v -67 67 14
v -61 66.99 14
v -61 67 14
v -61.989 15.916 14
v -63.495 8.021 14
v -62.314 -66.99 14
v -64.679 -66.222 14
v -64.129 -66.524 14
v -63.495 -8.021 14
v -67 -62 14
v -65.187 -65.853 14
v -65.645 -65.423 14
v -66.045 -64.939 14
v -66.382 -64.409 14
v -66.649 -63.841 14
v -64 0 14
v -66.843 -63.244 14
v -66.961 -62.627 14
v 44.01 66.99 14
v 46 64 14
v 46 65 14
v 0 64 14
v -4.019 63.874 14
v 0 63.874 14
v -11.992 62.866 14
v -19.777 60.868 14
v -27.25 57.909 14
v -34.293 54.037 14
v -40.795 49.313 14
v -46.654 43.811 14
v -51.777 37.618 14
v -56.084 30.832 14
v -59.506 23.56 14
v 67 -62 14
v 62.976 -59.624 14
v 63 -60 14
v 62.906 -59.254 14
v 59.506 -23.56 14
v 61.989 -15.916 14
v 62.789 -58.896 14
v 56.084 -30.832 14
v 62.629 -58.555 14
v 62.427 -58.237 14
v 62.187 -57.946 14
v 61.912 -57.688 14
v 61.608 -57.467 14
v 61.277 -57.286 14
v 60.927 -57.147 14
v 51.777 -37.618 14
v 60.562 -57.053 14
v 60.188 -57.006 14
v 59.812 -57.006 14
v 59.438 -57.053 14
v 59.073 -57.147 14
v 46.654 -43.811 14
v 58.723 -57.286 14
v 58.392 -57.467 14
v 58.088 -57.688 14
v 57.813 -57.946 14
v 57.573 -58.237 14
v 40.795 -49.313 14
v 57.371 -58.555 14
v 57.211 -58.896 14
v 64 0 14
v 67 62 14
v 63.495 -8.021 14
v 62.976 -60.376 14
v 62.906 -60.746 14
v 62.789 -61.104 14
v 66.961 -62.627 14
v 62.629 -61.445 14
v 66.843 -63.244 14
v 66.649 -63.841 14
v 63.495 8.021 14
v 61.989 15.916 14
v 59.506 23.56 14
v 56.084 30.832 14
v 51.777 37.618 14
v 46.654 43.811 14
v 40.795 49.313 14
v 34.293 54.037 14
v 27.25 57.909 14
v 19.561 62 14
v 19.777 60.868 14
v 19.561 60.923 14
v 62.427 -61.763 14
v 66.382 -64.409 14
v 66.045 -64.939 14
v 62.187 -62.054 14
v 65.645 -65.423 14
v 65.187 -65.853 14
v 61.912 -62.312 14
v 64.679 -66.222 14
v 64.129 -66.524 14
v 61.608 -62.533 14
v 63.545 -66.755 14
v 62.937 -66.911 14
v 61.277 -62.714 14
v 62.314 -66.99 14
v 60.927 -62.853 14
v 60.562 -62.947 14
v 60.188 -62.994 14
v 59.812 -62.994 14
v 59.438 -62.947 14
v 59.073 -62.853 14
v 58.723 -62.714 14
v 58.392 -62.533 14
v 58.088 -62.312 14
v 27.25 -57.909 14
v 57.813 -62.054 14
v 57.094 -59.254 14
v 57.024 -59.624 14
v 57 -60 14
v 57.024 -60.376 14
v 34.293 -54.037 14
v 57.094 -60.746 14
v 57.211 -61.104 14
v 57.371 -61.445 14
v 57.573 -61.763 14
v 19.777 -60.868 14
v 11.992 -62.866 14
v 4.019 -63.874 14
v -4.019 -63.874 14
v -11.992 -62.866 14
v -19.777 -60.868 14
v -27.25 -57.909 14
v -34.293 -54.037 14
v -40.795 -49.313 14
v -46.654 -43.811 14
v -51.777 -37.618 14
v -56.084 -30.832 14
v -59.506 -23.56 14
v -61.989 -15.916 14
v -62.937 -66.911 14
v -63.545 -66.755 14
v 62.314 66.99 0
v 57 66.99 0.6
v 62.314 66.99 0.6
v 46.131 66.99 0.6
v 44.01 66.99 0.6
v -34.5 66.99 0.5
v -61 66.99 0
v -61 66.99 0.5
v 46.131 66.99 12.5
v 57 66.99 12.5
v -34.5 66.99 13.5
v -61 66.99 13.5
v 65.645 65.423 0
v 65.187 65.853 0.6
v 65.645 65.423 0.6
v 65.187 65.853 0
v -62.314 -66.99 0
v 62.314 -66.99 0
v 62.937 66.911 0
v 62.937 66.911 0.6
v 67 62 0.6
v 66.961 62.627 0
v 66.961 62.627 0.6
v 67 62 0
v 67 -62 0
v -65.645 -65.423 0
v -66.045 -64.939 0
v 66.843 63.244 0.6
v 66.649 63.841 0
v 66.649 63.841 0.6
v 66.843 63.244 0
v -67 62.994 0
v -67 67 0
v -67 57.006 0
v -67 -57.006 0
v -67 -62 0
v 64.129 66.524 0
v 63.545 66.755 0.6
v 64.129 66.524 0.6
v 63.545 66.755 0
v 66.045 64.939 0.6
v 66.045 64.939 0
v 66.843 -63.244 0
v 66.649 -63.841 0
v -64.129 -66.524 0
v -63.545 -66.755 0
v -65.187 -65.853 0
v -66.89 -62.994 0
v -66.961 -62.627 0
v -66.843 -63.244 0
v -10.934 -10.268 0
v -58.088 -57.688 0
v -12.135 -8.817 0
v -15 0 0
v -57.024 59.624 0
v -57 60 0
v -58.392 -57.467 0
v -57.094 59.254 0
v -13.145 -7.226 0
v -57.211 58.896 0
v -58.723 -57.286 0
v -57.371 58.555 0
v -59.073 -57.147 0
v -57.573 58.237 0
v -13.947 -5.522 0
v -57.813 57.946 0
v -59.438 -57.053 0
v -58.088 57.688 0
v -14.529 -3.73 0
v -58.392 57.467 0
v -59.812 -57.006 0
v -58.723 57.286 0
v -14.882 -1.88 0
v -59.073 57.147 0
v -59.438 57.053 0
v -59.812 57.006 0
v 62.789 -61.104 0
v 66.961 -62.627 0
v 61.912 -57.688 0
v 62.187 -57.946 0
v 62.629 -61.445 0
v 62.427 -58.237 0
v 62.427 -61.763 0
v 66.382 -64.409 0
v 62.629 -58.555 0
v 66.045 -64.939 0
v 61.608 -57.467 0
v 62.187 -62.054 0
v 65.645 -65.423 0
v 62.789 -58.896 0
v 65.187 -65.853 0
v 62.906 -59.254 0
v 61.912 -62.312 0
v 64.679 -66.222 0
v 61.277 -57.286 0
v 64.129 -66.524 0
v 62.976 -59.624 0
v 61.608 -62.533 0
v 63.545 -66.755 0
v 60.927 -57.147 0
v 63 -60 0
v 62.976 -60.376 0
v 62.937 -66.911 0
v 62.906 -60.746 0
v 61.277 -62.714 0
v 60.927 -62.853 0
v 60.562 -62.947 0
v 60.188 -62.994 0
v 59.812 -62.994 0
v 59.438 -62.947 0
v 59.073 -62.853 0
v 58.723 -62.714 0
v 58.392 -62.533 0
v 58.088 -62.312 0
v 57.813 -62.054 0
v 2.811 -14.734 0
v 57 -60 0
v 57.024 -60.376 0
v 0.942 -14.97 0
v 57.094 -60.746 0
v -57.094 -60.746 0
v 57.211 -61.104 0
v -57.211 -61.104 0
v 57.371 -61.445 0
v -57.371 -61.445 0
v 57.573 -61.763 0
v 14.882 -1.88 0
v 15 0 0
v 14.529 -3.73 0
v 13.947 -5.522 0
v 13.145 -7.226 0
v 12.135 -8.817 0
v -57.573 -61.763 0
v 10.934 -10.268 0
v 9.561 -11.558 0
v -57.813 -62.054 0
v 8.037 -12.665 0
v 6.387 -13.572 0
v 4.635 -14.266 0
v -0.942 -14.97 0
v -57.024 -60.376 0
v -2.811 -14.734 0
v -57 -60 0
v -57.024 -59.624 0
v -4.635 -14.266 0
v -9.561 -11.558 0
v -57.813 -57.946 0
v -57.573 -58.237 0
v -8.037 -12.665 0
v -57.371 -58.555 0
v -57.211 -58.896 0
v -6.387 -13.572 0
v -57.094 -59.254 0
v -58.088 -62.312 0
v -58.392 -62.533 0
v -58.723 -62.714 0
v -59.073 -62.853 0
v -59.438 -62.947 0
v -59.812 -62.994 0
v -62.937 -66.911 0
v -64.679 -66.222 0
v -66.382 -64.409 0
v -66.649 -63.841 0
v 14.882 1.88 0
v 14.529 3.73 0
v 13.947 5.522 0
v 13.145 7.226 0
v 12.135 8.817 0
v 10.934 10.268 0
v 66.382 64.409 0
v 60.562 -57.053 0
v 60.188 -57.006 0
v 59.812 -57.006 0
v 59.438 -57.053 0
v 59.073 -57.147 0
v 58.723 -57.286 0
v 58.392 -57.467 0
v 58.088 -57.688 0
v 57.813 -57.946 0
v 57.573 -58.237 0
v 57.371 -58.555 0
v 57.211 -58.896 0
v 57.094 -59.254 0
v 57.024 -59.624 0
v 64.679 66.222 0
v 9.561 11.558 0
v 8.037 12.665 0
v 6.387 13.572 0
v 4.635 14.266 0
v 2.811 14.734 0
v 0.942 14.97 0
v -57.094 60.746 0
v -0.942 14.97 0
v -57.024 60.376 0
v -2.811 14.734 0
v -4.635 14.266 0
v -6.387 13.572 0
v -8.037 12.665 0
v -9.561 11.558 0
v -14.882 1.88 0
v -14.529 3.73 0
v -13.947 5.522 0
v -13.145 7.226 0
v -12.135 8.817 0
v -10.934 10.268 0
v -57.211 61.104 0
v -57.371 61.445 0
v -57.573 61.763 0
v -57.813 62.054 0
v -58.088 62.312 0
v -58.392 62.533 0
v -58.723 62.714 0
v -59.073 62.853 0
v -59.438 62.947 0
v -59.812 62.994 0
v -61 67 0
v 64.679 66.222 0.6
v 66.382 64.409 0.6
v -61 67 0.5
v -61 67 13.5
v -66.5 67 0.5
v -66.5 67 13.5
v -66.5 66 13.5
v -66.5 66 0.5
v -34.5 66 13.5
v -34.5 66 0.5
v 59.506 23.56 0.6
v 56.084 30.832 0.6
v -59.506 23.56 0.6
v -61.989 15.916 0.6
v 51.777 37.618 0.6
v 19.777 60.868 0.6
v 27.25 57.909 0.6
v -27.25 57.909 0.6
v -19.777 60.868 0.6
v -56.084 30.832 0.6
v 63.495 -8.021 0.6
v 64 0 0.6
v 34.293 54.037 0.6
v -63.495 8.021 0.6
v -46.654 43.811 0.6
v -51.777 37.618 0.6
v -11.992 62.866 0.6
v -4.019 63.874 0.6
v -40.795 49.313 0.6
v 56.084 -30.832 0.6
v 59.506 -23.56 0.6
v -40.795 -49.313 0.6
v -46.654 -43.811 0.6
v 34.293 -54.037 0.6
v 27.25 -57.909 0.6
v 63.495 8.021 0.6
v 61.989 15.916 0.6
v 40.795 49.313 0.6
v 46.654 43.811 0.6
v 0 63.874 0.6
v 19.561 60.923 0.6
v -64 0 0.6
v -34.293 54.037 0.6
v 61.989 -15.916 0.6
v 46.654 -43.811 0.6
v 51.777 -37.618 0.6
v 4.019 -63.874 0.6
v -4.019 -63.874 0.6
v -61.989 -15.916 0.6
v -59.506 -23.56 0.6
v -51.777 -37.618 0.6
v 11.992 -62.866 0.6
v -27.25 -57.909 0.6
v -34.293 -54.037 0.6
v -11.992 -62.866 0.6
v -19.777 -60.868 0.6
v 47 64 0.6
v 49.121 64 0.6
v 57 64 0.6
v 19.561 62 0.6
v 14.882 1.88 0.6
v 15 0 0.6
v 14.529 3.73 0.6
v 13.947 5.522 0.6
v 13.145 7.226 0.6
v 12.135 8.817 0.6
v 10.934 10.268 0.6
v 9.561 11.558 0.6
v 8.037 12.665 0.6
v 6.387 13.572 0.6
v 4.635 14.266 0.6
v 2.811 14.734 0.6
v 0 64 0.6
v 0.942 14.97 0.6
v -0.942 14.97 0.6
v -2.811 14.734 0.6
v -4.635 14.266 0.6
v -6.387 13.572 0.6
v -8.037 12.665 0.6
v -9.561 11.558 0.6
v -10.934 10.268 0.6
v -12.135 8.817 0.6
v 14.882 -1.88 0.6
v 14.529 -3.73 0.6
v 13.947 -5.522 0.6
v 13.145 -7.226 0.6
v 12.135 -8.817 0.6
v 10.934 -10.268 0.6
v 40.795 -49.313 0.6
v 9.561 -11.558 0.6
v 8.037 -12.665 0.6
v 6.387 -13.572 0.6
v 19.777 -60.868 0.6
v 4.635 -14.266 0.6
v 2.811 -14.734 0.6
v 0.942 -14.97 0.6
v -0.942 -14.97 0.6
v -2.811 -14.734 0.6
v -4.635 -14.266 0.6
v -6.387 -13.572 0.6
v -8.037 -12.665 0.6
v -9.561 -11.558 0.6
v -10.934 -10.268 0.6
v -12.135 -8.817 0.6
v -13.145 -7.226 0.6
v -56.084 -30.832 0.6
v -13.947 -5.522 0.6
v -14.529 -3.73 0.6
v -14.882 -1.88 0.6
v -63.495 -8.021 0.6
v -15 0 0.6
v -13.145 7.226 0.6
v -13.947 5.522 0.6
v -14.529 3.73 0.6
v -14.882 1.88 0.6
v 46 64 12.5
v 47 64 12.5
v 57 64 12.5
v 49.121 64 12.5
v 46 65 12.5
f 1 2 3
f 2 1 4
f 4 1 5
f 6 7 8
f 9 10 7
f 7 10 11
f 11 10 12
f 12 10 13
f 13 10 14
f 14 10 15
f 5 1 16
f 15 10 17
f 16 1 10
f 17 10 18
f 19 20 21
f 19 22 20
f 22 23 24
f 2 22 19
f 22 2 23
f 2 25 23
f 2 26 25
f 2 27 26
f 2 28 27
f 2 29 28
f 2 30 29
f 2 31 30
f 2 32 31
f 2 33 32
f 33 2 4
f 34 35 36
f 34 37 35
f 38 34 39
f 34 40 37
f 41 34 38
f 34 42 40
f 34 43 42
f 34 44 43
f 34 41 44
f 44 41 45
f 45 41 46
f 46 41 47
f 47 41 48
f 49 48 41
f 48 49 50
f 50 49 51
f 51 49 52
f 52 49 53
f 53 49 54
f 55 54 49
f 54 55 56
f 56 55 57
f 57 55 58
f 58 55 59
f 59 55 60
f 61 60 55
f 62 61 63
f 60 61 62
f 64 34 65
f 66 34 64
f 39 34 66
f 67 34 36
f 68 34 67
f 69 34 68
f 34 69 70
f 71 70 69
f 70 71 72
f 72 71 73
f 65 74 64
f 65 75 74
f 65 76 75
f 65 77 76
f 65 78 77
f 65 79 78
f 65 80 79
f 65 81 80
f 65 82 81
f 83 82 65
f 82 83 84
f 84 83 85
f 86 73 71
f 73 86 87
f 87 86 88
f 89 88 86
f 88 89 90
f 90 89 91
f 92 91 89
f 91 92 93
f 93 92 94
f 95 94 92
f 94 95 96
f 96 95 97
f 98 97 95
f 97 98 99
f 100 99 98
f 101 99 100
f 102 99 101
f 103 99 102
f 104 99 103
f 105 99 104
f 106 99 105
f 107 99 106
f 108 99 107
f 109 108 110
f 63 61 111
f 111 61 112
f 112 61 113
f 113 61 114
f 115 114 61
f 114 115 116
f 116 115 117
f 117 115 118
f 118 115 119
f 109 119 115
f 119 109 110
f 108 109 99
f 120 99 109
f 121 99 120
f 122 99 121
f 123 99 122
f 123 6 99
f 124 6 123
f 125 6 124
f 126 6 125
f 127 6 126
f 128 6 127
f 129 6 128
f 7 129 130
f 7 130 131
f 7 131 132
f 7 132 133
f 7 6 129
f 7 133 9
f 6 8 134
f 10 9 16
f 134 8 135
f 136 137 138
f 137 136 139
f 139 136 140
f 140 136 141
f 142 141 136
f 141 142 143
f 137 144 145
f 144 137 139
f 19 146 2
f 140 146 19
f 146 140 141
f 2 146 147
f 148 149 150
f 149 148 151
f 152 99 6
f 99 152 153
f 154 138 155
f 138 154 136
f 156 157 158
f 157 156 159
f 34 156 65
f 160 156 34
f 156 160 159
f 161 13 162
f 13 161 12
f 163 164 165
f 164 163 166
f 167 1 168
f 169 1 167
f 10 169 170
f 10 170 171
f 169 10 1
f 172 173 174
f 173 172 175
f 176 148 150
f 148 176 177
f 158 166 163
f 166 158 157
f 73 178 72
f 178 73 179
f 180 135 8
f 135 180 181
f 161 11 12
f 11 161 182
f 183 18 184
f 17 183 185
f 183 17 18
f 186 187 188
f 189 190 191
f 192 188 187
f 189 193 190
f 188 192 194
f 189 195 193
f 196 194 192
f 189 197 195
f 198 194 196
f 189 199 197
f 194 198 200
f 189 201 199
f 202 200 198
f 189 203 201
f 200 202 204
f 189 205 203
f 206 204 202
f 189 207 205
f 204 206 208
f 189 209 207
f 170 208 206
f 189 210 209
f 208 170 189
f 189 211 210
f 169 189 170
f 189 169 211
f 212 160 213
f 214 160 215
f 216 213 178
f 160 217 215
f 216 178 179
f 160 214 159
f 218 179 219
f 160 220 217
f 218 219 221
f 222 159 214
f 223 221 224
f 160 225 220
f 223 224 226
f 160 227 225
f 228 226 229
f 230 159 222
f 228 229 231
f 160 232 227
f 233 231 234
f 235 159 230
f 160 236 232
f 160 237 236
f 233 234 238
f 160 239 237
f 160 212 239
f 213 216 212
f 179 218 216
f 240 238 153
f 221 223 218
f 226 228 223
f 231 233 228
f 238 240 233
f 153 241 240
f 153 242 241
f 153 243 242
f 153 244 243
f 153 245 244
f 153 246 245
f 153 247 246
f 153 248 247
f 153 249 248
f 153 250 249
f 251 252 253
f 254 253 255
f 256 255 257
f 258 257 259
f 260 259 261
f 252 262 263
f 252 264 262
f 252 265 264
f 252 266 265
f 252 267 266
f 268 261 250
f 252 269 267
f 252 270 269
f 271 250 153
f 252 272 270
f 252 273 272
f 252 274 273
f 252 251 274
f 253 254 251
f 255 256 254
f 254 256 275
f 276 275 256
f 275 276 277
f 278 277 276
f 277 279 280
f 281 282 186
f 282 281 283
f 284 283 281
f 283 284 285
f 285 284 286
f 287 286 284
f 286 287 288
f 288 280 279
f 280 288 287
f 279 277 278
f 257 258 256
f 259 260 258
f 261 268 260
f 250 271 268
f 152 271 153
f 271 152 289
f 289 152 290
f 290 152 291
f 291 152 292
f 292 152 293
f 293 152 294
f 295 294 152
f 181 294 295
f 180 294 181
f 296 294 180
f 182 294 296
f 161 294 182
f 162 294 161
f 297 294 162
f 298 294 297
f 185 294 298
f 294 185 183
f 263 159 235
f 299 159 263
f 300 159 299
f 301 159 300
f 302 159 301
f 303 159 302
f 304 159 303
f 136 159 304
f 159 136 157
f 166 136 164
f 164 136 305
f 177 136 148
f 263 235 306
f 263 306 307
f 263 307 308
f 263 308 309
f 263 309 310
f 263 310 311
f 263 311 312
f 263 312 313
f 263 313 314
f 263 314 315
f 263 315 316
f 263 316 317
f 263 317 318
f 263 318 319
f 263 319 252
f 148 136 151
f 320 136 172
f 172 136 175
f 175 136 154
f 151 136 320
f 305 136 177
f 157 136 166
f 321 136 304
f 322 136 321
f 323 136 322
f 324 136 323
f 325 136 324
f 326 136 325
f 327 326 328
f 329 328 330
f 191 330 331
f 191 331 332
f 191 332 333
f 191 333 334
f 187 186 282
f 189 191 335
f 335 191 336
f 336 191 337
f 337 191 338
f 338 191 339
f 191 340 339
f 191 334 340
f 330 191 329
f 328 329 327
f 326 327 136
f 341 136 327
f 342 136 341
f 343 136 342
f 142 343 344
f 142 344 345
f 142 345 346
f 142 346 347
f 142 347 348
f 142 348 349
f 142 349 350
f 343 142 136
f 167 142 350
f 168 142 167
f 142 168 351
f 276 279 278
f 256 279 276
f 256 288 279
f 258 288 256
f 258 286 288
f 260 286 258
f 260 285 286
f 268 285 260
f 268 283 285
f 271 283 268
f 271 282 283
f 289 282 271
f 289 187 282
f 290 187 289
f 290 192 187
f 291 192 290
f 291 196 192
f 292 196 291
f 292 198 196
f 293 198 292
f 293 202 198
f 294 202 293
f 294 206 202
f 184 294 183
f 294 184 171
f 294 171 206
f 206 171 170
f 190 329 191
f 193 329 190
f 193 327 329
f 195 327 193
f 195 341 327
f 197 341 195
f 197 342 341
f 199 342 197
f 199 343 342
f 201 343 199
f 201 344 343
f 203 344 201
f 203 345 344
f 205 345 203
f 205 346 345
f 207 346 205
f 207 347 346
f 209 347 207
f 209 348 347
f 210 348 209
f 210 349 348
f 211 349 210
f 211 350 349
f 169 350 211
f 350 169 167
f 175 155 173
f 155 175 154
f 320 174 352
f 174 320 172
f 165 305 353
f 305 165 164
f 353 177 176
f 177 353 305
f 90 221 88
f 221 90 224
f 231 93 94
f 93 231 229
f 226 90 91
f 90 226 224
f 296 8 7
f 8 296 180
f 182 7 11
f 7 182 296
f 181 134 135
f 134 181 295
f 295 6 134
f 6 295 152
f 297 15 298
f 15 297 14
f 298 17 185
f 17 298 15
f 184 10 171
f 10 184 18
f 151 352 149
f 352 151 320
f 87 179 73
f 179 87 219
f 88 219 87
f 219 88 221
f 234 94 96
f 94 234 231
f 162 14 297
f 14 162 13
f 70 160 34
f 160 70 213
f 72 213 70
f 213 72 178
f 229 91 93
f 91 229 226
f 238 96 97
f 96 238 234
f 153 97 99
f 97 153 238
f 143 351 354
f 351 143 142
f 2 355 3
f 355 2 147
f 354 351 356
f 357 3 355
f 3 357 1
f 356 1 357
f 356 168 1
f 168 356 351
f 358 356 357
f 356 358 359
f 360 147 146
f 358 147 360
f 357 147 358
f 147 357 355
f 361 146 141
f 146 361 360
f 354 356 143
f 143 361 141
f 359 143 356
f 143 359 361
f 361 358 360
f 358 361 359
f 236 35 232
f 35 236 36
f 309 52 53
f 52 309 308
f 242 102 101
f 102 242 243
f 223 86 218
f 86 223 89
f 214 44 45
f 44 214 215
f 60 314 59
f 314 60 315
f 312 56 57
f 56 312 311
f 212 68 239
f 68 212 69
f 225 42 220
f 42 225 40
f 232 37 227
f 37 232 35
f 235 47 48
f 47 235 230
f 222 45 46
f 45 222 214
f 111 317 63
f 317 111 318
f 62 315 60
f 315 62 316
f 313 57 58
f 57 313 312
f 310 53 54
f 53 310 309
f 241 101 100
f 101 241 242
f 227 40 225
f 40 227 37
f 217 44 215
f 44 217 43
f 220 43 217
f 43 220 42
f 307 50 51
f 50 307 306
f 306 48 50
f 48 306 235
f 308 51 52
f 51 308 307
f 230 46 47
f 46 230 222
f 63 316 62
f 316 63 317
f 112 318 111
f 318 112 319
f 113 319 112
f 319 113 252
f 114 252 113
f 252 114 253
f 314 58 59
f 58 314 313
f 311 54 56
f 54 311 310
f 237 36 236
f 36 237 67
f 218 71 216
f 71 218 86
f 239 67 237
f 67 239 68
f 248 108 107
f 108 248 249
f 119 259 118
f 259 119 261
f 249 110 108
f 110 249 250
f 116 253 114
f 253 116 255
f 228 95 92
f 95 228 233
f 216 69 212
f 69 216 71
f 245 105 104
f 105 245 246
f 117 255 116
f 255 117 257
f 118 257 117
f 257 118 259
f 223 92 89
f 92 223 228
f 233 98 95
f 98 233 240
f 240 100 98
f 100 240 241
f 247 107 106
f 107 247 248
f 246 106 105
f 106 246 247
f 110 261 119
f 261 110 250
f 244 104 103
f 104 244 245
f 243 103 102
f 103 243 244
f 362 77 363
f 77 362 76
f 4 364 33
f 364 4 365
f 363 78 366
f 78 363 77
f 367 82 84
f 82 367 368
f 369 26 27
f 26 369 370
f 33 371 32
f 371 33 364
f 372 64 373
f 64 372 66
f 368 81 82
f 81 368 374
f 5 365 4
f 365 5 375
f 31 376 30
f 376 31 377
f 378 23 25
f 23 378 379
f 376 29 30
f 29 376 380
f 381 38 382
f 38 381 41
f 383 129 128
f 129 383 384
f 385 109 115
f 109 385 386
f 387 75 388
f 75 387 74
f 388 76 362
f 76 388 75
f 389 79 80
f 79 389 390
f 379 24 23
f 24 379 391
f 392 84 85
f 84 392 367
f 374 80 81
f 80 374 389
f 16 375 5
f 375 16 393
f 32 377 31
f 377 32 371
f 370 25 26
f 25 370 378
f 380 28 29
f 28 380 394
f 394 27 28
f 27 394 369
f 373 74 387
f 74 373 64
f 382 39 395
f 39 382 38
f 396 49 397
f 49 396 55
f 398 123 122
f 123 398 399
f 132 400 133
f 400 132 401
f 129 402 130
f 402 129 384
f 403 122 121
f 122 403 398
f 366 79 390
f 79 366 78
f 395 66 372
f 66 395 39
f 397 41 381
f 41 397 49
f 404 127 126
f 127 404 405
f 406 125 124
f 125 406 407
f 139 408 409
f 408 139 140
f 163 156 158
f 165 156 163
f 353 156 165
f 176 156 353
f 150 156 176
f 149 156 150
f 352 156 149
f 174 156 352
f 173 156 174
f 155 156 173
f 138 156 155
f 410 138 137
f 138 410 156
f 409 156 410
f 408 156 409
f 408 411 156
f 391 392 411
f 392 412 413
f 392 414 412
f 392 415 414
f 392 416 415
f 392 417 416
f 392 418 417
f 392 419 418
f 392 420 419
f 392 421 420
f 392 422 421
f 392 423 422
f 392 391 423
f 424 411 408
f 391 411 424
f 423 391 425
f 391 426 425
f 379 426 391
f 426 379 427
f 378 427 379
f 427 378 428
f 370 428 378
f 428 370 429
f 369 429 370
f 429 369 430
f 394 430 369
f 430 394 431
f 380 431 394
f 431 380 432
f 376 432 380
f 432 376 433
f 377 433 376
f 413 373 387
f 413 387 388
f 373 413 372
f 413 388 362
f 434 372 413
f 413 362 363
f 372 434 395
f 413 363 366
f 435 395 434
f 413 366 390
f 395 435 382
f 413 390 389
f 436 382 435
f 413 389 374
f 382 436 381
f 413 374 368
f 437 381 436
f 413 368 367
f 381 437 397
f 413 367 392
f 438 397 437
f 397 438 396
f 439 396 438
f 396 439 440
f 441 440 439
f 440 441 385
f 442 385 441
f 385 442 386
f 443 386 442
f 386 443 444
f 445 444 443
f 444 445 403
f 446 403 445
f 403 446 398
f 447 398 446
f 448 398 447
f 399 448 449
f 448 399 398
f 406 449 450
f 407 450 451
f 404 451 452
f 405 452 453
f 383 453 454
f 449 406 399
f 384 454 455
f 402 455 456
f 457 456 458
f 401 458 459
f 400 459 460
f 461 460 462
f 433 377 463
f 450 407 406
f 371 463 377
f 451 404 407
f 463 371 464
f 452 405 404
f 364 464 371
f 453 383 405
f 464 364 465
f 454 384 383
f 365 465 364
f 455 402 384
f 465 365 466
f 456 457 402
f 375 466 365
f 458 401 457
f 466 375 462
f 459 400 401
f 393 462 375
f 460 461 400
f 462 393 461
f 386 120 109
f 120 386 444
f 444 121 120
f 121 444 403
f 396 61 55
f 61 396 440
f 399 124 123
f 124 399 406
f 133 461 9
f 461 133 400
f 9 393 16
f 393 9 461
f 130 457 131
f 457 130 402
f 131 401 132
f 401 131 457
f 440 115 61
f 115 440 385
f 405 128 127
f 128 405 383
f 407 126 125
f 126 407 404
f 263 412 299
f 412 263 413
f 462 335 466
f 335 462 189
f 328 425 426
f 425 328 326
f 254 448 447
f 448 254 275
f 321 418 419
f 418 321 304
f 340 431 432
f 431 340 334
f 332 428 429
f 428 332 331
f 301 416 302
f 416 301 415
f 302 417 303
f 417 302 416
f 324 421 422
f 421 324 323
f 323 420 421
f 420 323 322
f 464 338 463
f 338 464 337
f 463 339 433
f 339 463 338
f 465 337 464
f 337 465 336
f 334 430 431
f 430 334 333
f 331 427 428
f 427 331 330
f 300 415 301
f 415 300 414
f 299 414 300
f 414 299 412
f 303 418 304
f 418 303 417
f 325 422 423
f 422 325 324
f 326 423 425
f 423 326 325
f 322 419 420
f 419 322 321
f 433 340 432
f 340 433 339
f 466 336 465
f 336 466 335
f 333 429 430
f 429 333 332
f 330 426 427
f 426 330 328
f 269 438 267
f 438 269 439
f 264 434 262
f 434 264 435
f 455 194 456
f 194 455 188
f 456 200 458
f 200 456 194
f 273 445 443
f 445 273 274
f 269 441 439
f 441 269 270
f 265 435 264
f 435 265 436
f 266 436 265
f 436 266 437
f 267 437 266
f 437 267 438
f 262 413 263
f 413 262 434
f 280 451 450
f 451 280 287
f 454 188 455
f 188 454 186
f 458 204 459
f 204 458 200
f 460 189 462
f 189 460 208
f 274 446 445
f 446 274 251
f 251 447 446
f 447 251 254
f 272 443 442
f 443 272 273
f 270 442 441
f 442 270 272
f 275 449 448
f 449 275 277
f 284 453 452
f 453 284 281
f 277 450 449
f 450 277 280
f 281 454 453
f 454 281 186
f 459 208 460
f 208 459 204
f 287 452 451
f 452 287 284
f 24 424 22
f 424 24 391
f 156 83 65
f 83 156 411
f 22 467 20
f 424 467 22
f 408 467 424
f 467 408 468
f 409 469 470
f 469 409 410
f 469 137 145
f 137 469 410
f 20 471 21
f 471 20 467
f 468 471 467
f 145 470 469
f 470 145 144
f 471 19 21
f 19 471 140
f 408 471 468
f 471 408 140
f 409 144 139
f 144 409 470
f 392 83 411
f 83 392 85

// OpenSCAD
$fn = 50;


difference() {
	union() {
		hull() {
			translate(v = [-62.0000000000, 62.0000000000, 0]) {
				cylinder(h = 14, r = 5);
			}
			translate(v = [62.0000000000, 62.0000000000, 0]) {
				cylinder(h = 14, r = 5);
			}
			translate(v = [-62.0000000000, -62.0000000000, 0]) {
				cylinder(h = 14, r = 5);
			}
			translate(v = [62.0000000000, -62.0000000000, 0]) {
				cylinder(h = 14, r = 5);
			}
		}
		translate(v = [-67.0000000000, 61.0000000000, 0]) {
			cube(size = [6, 6, 14]);
		}
	}
	union() {
		translate(v = [-67.5000000000, -60.0000000000, -250.0000000000]) {
			rotate(a = [0, 0, 0]) {
				difference() {
					union() {
						hull() {
							translate(v = [7.5000000000, 0, 0]) {
								cylinder(h = 250, r = 3.0000000000, r1 = 3.0000000000, r2 = 3.0000000000);
							}
							translate(v = [-7.5000000000, 0, 0]) {
								cylinder(h = 250, r = 3.0000000000, r1 = 3.0000000000, r2 = 3.0000000000);
							}
						}
					}
					union();
				}
			}
		}
		translate(v = [-67.5000000000, 60.0000000000, -250.0000000000]) {
			rotate(a = [0, 0, 0]) {
				difference() {
					union() {
						hull() {
							translate(v = [7.5000000000, 0, 0]) {
								cylinder(h = 250, r = 3.0000000000, r1 = 3.0000000000, r2 = 3.0000000000);
							}
							translate(v = [-7.5000000000, 0, 0]) {
								cylinder(h = 250, r = 3.0000000000, r1 = 3.0000000000, r2 = 3.0000000000);
							}
						}
					}
					union();
				}
			}
		}
		translate(v = [-66.5000000000, 66.0000000000, 0.5000000000]) {
			cube(size = [32, 1, 13.0000000000]);
		}
		translate(v = [60.0000000000, -60.0000000000, -50.0000000000]) {
			cylinder(h = 100, r = 3.0000000000);
		}
		translate(v = [0, 0, 0.6000000000]) {
			cylinder(h = 16.4000000000, r = 64.0000000000);
		}
		translate(v = [0, 0, -7.0000000000]) {
			cylinder(h = 14, r = 15.0000000000);
		}
		translate(v = [0.0000000000, 62.0000000000, 0.6000000000]) {
			cube(size = [67.0000000000, 2, 16.4000000000]);
		}
		translate(v = [57.0000000000, 62.0000000000, 0.6000000000]) {
			cube(size = [10, 5, 16.4000000000]);
		}
		translate(v = [46.0000000000, 62.0000000000, 12.5000000000]) {
			cube(size = [21, 5, 1.5000000000]);
		}
		translate(v = [43.2500000000, 67.7500000000, 0.6000000000]) {
			rotate(a = [0, 0, -45]) {
				cube(size = [7.5000000000, 1.5000000000, 16.4000000000]);
			}
		}
		translate(v = [12.0610000000, 60.0000000000, 0.6000000000]) {
			cube(size = [7.5000000000, 2, 13.4000000000]);
		}
	}
}
